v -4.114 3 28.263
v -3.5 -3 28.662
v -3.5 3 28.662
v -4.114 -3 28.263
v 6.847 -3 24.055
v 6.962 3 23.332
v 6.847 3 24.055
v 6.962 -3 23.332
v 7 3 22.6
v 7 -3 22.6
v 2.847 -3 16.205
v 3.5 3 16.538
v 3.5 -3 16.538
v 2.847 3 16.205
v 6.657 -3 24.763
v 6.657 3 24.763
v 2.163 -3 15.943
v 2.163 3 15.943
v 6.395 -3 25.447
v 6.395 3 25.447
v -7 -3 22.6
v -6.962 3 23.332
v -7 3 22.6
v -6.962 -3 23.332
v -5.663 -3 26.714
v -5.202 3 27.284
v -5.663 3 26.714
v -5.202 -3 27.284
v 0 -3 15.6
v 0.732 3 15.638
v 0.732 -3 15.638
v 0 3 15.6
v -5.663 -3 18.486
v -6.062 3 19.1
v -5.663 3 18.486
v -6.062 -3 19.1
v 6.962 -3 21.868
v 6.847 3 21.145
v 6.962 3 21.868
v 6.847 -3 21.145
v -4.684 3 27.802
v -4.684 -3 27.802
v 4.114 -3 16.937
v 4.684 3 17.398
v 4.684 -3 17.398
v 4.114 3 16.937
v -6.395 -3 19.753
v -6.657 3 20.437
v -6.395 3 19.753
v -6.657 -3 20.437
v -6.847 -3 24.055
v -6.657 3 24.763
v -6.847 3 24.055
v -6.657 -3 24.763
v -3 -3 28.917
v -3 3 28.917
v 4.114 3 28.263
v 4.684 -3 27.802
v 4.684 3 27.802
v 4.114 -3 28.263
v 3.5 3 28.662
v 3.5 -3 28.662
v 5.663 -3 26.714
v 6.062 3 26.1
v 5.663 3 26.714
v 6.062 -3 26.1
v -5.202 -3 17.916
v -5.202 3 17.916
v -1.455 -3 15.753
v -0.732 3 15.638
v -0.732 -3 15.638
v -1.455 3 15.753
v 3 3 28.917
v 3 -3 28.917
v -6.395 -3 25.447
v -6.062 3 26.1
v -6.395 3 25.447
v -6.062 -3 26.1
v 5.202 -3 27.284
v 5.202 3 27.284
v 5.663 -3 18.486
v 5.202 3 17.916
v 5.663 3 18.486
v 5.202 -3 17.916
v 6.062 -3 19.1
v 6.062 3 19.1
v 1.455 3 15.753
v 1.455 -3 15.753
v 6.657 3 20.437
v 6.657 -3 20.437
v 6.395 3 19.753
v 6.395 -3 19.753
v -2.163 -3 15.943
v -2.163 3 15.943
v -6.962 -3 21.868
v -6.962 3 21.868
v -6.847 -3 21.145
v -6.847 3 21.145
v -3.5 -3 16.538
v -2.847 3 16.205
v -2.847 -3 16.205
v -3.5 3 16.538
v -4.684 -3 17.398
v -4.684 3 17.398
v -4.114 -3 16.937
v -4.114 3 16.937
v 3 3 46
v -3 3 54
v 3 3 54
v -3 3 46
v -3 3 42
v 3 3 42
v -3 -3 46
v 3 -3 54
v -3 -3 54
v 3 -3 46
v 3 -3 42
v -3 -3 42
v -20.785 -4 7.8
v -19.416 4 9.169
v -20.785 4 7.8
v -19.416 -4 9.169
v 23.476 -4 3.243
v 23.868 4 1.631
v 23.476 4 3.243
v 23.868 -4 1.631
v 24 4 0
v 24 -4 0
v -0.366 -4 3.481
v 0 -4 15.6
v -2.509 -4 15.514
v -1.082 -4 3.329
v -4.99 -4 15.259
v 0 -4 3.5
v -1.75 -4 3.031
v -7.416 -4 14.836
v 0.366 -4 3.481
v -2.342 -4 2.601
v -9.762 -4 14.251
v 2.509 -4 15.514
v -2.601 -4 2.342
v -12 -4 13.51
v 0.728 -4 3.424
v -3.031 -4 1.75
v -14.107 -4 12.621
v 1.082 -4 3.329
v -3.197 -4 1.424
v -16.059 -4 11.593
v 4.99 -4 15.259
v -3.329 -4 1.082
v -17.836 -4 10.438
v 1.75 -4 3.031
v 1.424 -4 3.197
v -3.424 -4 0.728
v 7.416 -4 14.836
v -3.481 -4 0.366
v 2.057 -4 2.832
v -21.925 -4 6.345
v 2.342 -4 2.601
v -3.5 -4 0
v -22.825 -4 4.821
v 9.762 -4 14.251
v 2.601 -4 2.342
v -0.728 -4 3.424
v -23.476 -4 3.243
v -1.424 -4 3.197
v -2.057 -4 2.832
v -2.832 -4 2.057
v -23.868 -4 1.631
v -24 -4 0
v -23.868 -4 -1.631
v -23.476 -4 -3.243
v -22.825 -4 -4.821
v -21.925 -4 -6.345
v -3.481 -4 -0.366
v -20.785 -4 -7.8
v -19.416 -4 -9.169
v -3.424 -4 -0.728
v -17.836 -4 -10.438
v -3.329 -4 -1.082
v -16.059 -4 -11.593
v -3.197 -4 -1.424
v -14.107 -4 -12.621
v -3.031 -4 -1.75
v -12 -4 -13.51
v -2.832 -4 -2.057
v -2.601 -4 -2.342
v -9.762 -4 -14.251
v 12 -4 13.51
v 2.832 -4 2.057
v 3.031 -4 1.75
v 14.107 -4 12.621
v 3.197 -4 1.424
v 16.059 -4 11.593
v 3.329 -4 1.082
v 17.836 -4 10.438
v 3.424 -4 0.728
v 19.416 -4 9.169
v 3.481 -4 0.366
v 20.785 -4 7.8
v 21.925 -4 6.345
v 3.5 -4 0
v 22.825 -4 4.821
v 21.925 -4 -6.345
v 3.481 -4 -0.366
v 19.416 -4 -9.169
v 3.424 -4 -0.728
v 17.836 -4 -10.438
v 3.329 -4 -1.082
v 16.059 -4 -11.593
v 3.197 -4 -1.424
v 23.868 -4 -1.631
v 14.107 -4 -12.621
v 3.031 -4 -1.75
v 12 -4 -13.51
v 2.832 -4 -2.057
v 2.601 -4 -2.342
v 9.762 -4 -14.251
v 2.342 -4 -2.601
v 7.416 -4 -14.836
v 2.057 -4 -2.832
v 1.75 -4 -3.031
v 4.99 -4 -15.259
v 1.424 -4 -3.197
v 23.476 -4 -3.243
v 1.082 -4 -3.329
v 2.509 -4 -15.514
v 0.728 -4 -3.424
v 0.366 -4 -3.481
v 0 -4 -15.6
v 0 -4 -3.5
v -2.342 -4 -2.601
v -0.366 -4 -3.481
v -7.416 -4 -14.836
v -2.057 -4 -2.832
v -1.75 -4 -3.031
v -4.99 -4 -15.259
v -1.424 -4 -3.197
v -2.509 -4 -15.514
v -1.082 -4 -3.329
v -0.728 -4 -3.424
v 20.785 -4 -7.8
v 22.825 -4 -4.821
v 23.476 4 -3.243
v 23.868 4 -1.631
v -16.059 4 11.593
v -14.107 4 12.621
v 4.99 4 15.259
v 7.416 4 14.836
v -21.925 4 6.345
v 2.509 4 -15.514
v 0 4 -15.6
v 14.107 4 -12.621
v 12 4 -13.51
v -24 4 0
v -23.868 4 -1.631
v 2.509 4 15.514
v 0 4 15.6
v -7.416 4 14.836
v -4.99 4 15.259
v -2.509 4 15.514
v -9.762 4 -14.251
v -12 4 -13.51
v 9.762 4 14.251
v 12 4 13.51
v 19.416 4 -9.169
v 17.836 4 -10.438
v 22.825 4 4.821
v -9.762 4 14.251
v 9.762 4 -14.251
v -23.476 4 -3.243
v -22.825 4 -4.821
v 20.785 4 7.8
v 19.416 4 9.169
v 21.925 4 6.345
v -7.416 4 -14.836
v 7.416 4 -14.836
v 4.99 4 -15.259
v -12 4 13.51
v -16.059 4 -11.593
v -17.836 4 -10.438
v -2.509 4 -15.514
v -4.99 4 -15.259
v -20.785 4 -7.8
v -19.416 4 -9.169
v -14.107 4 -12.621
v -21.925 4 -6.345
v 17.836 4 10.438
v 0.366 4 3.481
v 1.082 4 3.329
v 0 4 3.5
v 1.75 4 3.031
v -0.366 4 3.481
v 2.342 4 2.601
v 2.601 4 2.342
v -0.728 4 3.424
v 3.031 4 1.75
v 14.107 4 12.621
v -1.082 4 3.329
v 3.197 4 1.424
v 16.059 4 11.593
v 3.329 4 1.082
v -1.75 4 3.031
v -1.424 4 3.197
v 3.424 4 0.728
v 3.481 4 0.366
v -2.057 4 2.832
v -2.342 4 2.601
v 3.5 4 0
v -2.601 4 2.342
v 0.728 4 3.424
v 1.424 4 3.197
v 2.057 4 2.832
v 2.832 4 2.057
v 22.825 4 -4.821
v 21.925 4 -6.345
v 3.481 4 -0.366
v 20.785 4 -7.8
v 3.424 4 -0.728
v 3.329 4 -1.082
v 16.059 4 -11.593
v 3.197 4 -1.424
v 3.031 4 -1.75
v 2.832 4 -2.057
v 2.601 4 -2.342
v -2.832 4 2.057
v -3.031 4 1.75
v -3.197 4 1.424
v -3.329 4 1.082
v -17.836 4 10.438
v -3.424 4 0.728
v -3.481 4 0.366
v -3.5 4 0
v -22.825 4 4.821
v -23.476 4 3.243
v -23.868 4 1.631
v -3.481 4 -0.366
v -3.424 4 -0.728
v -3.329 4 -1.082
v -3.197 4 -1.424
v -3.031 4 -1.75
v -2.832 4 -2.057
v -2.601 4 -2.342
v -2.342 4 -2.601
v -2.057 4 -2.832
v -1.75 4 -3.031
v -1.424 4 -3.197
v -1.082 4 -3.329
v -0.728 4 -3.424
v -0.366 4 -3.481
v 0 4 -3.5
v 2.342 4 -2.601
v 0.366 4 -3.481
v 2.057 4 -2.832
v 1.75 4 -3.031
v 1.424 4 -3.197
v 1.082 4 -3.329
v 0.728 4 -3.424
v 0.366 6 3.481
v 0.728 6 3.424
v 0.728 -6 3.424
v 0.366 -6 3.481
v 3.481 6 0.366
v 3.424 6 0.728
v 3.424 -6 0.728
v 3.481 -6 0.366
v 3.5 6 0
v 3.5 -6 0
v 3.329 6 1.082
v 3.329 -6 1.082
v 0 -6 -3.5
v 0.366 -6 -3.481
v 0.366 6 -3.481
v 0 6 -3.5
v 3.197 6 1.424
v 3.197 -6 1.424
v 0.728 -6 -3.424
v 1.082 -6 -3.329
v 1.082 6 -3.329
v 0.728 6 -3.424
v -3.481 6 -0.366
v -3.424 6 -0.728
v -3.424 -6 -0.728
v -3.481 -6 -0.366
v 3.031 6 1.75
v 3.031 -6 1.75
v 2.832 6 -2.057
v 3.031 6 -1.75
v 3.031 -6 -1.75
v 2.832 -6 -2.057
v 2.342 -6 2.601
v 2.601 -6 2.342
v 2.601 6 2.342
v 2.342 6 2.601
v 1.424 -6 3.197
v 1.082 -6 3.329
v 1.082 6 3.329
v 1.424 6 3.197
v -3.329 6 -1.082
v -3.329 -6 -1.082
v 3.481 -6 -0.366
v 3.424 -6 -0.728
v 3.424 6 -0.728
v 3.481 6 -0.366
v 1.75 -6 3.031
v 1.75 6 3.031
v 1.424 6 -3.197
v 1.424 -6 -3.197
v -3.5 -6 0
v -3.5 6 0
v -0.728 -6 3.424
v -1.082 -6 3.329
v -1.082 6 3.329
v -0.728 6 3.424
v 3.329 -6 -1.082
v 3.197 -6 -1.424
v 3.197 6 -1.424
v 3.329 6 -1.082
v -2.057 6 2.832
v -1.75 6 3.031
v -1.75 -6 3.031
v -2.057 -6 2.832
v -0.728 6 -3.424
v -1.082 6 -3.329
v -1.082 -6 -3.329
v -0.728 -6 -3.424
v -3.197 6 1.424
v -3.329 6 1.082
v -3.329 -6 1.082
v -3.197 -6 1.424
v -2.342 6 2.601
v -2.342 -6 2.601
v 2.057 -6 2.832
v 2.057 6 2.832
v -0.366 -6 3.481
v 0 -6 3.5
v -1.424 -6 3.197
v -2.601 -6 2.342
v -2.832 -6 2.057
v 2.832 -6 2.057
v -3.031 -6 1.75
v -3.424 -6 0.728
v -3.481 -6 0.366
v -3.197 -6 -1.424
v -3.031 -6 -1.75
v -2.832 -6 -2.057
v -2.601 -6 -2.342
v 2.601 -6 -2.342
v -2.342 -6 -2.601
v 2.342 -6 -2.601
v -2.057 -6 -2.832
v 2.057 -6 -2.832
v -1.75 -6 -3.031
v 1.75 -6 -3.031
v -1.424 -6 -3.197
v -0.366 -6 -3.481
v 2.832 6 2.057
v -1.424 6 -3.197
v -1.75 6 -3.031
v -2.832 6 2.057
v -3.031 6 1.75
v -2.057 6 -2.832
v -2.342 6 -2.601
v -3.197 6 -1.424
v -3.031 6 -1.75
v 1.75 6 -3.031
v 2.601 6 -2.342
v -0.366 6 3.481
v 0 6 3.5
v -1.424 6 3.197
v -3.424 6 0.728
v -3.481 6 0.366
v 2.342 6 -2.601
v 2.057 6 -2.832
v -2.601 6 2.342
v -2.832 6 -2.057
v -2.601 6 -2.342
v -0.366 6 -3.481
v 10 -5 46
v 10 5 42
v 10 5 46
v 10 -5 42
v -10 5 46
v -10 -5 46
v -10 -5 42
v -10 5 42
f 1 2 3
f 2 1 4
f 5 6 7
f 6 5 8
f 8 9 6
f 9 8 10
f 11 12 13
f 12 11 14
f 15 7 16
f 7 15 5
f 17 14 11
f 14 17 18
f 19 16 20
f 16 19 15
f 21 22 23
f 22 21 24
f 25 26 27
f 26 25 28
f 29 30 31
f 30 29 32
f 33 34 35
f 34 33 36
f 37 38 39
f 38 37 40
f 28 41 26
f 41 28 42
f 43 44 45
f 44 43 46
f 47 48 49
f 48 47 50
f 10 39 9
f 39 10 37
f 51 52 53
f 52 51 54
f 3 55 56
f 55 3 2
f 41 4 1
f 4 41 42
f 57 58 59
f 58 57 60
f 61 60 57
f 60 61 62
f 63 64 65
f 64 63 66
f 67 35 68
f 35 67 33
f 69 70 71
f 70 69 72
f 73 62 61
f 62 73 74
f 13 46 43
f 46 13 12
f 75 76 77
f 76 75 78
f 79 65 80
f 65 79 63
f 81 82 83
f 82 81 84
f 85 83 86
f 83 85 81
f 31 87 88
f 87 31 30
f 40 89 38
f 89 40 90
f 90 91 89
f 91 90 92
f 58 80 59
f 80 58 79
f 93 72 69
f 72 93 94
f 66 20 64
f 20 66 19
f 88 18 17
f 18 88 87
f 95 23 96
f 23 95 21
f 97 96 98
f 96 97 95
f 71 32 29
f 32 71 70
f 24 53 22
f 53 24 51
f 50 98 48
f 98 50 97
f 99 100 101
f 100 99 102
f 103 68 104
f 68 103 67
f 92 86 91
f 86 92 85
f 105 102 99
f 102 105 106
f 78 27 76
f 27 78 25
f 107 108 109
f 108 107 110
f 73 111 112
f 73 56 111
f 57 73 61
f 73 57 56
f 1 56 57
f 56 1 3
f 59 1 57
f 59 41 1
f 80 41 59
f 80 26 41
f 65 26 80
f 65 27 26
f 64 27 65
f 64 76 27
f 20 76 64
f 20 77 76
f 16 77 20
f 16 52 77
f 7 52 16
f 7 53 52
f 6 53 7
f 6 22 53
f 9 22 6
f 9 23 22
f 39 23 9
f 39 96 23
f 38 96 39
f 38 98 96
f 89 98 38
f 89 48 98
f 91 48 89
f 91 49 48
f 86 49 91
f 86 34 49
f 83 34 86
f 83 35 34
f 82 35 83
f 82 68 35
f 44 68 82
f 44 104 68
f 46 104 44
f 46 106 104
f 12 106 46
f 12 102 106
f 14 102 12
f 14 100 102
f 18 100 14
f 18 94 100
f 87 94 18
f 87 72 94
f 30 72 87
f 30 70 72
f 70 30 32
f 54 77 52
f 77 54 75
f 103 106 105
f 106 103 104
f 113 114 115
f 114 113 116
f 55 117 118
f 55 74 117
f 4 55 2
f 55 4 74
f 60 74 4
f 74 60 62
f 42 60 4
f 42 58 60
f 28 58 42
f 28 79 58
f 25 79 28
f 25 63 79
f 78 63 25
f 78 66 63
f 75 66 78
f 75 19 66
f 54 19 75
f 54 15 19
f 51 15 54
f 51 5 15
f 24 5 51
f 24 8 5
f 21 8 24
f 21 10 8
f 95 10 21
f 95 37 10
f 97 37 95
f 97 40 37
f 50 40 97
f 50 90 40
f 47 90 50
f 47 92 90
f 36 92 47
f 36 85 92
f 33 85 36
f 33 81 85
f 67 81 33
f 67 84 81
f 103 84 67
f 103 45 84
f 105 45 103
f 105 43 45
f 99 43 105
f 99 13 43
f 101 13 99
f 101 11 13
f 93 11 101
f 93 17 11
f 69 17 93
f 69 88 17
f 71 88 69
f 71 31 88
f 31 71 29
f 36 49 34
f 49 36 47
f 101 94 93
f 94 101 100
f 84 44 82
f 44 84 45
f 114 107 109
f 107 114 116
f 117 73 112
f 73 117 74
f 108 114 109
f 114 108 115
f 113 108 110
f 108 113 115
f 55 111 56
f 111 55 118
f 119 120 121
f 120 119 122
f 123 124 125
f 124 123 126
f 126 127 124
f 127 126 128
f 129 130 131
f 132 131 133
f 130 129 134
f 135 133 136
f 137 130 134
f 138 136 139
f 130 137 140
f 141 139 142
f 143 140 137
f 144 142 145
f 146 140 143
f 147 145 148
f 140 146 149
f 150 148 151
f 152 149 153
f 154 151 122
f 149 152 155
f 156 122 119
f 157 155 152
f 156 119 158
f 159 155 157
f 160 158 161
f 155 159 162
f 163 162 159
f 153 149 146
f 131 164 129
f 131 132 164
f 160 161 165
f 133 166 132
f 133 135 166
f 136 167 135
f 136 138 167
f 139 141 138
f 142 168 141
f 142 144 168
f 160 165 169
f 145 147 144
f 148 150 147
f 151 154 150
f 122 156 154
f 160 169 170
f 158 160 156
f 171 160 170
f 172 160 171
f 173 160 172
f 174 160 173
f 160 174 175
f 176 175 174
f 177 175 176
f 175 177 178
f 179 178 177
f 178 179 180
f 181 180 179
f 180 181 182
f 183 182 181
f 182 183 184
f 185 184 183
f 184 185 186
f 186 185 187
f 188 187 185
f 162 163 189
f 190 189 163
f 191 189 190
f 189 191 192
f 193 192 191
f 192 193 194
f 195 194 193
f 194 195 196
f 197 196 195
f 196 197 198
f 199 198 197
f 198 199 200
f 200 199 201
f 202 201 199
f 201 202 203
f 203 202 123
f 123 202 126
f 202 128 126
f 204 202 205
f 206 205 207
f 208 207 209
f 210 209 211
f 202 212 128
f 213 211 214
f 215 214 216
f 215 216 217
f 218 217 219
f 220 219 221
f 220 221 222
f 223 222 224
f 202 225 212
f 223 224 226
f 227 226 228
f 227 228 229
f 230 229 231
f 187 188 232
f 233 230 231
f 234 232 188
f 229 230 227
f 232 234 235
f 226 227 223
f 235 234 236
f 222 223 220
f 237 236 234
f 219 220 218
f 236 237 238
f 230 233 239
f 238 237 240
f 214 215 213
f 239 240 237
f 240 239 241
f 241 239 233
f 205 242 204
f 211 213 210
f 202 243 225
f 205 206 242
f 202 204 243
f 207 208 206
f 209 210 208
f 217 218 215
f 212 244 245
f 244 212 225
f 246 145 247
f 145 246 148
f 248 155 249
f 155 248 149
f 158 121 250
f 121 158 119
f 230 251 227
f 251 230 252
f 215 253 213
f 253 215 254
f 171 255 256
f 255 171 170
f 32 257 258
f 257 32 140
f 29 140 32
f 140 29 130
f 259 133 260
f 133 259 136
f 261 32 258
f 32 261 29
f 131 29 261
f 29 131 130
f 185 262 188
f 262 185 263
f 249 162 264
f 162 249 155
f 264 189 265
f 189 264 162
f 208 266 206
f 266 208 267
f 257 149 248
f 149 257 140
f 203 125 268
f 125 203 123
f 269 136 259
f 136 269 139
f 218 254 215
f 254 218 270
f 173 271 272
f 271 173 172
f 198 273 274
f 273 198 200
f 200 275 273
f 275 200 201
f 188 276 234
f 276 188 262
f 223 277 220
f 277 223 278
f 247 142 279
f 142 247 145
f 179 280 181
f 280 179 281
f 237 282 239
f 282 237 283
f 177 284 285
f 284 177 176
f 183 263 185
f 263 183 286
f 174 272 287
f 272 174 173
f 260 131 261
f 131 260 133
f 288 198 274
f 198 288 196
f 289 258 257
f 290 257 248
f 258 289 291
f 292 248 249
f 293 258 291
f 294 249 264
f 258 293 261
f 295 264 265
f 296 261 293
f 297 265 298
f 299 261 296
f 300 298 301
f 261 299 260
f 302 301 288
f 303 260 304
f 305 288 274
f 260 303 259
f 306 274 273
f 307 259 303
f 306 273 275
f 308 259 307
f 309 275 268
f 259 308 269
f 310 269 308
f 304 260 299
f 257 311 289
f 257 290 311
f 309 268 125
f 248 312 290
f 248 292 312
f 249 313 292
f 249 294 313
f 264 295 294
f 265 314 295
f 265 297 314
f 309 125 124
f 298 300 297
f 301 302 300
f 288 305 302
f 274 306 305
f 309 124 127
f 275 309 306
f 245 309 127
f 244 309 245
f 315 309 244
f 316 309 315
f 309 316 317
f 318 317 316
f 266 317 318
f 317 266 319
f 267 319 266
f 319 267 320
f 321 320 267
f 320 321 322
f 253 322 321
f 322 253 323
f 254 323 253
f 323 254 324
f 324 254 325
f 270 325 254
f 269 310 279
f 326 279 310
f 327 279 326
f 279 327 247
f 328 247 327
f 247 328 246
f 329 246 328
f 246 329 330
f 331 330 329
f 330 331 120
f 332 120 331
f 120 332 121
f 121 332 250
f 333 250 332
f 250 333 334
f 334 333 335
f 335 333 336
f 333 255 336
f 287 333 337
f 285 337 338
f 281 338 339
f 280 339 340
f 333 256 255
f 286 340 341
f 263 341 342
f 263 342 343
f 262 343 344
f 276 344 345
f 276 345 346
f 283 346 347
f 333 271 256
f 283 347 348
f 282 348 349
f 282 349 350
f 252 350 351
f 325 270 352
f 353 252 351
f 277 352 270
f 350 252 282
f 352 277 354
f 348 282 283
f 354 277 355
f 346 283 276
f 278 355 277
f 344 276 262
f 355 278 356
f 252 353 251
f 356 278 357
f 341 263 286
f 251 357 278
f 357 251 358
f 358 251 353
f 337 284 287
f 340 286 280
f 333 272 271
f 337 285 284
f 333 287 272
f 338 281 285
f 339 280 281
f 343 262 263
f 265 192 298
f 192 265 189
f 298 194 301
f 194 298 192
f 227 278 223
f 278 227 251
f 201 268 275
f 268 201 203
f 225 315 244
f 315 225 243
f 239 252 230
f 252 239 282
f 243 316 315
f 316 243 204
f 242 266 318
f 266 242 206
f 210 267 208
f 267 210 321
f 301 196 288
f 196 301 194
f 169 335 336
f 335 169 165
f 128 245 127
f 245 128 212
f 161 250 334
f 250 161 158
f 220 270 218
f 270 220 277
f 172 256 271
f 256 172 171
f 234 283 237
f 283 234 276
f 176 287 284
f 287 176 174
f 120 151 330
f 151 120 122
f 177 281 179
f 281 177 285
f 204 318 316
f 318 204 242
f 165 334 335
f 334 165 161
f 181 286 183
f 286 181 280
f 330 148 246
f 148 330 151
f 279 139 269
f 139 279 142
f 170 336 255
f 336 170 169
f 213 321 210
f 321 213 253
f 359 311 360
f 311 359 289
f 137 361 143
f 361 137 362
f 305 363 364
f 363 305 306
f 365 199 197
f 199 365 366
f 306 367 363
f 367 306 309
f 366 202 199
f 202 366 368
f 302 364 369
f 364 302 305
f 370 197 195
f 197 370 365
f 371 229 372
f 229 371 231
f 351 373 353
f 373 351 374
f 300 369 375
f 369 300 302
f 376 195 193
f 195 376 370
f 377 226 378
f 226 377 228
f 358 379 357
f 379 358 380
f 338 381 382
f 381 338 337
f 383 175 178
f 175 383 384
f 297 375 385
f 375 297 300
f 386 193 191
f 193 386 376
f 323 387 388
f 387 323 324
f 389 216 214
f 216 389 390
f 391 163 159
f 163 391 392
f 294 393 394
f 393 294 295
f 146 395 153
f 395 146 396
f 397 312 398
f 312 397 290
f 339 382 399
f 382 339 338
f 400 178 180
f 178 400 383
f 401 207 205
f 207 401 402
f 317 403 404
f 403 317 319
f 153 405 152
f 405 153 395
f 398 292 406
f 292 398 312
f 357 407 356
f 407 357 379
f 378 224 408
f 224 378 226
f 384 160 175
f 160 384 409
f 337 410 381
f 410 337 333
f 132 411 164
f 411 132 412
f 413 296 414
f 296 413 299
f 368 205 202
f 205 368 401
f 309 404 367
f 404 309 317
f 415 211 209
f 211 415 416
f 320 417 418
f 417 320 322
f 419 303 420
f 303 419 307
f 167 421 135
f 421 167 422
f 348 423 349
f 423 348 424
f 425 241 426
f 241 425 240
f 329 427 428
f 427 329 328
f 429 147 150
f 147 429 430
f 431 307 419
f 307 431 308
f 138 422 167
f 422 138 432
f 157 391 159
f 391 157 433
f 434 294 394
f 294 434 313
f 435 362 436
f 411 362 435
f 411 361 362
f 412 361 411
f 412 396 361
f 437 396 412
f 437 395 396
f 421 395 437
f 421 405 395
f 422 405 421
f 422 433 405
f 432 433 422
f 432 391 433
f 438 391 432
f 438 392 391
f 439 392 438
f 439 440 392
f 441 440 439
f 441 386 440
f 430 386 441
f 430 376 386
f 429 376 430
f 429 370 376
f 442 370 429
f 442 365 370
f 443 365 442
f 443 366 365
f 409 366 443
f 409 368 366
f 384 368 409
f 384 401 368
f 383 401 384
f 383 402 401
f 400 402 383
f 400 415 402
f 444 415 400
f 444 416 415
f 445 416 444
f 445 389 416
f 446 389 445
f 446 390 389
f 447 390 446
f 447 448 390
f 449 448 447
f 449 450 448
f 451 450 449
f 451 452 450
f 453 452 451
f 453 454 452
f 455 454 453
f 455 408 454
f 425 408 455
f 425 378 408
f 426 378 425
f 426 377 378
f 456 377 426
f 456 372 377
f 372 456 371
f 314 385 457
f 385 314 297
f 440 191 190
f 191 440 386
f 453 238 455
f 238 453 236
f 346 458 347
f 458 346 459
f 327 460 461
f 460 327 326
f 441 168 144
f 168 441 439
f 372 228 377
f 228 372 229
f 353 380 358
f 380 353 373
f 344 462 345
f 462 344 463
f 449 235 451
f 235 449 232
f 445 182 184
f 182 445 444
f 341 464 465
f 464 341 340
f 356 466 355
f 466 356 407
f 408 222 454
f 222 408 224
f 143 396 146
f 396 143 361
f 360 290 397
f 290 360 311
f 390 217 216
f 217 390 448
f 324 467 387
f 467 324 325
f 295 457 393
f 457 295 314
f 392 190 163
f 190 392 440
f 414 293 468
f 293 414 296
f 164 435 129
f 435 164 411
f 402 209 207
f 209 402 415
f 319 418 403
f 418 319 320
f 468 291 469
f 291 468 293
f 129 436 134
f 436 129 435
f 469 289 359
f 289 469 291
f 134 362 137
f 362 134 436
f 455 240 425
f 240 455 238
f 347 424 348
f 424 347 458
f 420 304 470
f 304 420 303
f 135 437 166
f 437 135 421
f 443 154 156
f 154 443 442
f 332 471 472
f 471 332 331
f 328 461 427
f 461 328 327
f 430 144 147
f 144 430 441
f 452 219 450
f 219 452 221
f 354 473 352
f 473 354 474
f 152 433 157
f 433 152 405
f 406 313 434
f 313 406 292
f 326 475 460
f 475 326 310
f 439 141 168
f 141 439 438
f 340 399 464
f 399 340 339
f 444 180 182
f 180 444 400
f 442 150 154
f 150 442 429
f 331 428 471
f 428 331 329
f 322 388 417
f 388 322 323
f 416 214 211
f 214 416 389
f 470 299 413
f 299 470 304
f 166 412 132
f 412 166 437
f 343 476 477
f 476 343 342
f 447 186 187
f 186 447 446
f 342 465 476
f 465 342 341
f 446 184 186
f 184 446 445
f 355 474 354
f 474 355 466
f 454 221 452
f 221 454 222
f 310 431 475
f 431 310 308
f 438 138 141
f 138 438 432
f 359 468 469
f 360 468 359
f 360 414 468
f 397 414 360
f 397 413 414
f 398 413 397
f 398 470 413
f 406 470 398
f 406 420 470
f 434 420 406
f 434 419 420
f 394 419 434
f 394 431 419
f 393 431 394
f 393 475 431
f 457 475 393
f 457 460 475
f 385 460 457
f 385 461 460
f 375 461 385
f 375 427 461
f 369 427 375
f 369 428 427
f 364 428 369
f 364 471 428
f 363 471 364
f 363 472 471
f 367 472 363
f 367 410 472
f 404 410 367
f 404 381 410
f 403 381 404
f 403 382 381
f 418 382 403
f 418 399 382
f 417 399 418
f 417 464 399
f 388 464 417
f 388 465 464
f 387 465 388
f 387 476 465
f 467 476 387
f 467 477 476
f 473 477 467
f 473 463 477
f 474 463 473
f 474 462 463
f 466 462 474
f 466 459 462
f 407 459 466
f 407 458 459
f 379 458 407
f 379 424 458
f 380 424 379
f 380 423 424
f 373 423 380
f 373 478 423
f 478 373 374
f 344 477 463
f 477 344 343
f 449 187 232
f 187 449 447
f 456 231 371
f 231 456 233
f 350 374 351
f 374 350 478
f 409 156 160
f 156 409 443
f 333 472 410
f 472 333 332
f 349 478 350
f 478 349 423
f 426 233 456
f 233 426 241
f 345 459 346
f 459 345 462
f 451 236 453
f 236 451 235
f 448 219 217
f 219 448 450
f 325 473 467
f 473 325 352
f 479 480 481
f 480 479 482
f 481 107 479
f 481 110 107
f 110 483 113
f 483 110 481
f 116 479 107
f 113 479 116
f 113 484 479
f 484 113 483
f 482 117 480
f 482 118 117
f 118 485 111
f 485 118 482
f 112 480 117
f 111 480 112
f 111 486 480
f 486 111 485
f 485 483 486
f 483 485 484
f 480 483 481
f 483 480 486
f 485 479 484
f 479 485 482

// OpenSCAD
// file: _common.scad
// mechanism 共用設定 + 齒輪 module
$fn = 60;

// 簡化齒輪：N 個齒、節圓半徑 r、齒高 h、齒寬 w
module simple_gear(N = 16, r = 20, h = 4, thick = 6) {
  union() {
    // 主圓盤
    cylinder(h = thick, r = r, center = true);
    // 齒（梯形）
    for (i = [0:N-1]) {
      rotate([0, 0, i * 360 / N])
        translate([r, 0, 0])
          linear_extrude(height = thick, center = true)
            polygon([[0, -2.4], [h, -1.4], [h, 1.4], [0, 2.4]]);
    }
    // 中心凸軸
    cylinder(h = thick * 1.4, r = r * 0.18, center = true);
  }
}
// main file
// 凸輪 Cam — 偏心橢圓凸輪 + 從動件 + 導桿
include <_common.scad>

// 凸輪（偏心橢圓）
color([0.08, 0.71, 0.65])
  rotate([90, 0, 0]) scale([1, 0.65, 1])
    cylinder(h = 8, r = 24, center = true);

// 中心軸
color([0.06, 0.46, 0.42])
  rotate([90, 0, 0]) cylinder(h = 12, r = 3.5, center = true);

// 從動件（圓盤底 + 桿）
// 凸輪長軸 24、短軸 24×0.65 = 15.6；圖示為短軸朝上（最低點），凸輪頂在 z = 15.6
// 從動件圓盤 r = 7 → 圓心放 z = 22.6，圓盤底剛好貼住凸輪（舊值 18 會陷進凸輪 4.6）
color([0.86, 0.4, 0.2]) {
  // 底部圓盤（壓在凸輪上）
  translate([0, 0, 22.6]) rotate([90, 0, 0]) cylinder(h = 6, r = 7, center = true);
  // 直桿
  translate([-3, -3, 26]) cube([6, 6, 28]);
}

// 導向支架
color([0.28, 0.34, 0.43])
  translate([-10, -5, 42]) cube([20, 10, 4]);
